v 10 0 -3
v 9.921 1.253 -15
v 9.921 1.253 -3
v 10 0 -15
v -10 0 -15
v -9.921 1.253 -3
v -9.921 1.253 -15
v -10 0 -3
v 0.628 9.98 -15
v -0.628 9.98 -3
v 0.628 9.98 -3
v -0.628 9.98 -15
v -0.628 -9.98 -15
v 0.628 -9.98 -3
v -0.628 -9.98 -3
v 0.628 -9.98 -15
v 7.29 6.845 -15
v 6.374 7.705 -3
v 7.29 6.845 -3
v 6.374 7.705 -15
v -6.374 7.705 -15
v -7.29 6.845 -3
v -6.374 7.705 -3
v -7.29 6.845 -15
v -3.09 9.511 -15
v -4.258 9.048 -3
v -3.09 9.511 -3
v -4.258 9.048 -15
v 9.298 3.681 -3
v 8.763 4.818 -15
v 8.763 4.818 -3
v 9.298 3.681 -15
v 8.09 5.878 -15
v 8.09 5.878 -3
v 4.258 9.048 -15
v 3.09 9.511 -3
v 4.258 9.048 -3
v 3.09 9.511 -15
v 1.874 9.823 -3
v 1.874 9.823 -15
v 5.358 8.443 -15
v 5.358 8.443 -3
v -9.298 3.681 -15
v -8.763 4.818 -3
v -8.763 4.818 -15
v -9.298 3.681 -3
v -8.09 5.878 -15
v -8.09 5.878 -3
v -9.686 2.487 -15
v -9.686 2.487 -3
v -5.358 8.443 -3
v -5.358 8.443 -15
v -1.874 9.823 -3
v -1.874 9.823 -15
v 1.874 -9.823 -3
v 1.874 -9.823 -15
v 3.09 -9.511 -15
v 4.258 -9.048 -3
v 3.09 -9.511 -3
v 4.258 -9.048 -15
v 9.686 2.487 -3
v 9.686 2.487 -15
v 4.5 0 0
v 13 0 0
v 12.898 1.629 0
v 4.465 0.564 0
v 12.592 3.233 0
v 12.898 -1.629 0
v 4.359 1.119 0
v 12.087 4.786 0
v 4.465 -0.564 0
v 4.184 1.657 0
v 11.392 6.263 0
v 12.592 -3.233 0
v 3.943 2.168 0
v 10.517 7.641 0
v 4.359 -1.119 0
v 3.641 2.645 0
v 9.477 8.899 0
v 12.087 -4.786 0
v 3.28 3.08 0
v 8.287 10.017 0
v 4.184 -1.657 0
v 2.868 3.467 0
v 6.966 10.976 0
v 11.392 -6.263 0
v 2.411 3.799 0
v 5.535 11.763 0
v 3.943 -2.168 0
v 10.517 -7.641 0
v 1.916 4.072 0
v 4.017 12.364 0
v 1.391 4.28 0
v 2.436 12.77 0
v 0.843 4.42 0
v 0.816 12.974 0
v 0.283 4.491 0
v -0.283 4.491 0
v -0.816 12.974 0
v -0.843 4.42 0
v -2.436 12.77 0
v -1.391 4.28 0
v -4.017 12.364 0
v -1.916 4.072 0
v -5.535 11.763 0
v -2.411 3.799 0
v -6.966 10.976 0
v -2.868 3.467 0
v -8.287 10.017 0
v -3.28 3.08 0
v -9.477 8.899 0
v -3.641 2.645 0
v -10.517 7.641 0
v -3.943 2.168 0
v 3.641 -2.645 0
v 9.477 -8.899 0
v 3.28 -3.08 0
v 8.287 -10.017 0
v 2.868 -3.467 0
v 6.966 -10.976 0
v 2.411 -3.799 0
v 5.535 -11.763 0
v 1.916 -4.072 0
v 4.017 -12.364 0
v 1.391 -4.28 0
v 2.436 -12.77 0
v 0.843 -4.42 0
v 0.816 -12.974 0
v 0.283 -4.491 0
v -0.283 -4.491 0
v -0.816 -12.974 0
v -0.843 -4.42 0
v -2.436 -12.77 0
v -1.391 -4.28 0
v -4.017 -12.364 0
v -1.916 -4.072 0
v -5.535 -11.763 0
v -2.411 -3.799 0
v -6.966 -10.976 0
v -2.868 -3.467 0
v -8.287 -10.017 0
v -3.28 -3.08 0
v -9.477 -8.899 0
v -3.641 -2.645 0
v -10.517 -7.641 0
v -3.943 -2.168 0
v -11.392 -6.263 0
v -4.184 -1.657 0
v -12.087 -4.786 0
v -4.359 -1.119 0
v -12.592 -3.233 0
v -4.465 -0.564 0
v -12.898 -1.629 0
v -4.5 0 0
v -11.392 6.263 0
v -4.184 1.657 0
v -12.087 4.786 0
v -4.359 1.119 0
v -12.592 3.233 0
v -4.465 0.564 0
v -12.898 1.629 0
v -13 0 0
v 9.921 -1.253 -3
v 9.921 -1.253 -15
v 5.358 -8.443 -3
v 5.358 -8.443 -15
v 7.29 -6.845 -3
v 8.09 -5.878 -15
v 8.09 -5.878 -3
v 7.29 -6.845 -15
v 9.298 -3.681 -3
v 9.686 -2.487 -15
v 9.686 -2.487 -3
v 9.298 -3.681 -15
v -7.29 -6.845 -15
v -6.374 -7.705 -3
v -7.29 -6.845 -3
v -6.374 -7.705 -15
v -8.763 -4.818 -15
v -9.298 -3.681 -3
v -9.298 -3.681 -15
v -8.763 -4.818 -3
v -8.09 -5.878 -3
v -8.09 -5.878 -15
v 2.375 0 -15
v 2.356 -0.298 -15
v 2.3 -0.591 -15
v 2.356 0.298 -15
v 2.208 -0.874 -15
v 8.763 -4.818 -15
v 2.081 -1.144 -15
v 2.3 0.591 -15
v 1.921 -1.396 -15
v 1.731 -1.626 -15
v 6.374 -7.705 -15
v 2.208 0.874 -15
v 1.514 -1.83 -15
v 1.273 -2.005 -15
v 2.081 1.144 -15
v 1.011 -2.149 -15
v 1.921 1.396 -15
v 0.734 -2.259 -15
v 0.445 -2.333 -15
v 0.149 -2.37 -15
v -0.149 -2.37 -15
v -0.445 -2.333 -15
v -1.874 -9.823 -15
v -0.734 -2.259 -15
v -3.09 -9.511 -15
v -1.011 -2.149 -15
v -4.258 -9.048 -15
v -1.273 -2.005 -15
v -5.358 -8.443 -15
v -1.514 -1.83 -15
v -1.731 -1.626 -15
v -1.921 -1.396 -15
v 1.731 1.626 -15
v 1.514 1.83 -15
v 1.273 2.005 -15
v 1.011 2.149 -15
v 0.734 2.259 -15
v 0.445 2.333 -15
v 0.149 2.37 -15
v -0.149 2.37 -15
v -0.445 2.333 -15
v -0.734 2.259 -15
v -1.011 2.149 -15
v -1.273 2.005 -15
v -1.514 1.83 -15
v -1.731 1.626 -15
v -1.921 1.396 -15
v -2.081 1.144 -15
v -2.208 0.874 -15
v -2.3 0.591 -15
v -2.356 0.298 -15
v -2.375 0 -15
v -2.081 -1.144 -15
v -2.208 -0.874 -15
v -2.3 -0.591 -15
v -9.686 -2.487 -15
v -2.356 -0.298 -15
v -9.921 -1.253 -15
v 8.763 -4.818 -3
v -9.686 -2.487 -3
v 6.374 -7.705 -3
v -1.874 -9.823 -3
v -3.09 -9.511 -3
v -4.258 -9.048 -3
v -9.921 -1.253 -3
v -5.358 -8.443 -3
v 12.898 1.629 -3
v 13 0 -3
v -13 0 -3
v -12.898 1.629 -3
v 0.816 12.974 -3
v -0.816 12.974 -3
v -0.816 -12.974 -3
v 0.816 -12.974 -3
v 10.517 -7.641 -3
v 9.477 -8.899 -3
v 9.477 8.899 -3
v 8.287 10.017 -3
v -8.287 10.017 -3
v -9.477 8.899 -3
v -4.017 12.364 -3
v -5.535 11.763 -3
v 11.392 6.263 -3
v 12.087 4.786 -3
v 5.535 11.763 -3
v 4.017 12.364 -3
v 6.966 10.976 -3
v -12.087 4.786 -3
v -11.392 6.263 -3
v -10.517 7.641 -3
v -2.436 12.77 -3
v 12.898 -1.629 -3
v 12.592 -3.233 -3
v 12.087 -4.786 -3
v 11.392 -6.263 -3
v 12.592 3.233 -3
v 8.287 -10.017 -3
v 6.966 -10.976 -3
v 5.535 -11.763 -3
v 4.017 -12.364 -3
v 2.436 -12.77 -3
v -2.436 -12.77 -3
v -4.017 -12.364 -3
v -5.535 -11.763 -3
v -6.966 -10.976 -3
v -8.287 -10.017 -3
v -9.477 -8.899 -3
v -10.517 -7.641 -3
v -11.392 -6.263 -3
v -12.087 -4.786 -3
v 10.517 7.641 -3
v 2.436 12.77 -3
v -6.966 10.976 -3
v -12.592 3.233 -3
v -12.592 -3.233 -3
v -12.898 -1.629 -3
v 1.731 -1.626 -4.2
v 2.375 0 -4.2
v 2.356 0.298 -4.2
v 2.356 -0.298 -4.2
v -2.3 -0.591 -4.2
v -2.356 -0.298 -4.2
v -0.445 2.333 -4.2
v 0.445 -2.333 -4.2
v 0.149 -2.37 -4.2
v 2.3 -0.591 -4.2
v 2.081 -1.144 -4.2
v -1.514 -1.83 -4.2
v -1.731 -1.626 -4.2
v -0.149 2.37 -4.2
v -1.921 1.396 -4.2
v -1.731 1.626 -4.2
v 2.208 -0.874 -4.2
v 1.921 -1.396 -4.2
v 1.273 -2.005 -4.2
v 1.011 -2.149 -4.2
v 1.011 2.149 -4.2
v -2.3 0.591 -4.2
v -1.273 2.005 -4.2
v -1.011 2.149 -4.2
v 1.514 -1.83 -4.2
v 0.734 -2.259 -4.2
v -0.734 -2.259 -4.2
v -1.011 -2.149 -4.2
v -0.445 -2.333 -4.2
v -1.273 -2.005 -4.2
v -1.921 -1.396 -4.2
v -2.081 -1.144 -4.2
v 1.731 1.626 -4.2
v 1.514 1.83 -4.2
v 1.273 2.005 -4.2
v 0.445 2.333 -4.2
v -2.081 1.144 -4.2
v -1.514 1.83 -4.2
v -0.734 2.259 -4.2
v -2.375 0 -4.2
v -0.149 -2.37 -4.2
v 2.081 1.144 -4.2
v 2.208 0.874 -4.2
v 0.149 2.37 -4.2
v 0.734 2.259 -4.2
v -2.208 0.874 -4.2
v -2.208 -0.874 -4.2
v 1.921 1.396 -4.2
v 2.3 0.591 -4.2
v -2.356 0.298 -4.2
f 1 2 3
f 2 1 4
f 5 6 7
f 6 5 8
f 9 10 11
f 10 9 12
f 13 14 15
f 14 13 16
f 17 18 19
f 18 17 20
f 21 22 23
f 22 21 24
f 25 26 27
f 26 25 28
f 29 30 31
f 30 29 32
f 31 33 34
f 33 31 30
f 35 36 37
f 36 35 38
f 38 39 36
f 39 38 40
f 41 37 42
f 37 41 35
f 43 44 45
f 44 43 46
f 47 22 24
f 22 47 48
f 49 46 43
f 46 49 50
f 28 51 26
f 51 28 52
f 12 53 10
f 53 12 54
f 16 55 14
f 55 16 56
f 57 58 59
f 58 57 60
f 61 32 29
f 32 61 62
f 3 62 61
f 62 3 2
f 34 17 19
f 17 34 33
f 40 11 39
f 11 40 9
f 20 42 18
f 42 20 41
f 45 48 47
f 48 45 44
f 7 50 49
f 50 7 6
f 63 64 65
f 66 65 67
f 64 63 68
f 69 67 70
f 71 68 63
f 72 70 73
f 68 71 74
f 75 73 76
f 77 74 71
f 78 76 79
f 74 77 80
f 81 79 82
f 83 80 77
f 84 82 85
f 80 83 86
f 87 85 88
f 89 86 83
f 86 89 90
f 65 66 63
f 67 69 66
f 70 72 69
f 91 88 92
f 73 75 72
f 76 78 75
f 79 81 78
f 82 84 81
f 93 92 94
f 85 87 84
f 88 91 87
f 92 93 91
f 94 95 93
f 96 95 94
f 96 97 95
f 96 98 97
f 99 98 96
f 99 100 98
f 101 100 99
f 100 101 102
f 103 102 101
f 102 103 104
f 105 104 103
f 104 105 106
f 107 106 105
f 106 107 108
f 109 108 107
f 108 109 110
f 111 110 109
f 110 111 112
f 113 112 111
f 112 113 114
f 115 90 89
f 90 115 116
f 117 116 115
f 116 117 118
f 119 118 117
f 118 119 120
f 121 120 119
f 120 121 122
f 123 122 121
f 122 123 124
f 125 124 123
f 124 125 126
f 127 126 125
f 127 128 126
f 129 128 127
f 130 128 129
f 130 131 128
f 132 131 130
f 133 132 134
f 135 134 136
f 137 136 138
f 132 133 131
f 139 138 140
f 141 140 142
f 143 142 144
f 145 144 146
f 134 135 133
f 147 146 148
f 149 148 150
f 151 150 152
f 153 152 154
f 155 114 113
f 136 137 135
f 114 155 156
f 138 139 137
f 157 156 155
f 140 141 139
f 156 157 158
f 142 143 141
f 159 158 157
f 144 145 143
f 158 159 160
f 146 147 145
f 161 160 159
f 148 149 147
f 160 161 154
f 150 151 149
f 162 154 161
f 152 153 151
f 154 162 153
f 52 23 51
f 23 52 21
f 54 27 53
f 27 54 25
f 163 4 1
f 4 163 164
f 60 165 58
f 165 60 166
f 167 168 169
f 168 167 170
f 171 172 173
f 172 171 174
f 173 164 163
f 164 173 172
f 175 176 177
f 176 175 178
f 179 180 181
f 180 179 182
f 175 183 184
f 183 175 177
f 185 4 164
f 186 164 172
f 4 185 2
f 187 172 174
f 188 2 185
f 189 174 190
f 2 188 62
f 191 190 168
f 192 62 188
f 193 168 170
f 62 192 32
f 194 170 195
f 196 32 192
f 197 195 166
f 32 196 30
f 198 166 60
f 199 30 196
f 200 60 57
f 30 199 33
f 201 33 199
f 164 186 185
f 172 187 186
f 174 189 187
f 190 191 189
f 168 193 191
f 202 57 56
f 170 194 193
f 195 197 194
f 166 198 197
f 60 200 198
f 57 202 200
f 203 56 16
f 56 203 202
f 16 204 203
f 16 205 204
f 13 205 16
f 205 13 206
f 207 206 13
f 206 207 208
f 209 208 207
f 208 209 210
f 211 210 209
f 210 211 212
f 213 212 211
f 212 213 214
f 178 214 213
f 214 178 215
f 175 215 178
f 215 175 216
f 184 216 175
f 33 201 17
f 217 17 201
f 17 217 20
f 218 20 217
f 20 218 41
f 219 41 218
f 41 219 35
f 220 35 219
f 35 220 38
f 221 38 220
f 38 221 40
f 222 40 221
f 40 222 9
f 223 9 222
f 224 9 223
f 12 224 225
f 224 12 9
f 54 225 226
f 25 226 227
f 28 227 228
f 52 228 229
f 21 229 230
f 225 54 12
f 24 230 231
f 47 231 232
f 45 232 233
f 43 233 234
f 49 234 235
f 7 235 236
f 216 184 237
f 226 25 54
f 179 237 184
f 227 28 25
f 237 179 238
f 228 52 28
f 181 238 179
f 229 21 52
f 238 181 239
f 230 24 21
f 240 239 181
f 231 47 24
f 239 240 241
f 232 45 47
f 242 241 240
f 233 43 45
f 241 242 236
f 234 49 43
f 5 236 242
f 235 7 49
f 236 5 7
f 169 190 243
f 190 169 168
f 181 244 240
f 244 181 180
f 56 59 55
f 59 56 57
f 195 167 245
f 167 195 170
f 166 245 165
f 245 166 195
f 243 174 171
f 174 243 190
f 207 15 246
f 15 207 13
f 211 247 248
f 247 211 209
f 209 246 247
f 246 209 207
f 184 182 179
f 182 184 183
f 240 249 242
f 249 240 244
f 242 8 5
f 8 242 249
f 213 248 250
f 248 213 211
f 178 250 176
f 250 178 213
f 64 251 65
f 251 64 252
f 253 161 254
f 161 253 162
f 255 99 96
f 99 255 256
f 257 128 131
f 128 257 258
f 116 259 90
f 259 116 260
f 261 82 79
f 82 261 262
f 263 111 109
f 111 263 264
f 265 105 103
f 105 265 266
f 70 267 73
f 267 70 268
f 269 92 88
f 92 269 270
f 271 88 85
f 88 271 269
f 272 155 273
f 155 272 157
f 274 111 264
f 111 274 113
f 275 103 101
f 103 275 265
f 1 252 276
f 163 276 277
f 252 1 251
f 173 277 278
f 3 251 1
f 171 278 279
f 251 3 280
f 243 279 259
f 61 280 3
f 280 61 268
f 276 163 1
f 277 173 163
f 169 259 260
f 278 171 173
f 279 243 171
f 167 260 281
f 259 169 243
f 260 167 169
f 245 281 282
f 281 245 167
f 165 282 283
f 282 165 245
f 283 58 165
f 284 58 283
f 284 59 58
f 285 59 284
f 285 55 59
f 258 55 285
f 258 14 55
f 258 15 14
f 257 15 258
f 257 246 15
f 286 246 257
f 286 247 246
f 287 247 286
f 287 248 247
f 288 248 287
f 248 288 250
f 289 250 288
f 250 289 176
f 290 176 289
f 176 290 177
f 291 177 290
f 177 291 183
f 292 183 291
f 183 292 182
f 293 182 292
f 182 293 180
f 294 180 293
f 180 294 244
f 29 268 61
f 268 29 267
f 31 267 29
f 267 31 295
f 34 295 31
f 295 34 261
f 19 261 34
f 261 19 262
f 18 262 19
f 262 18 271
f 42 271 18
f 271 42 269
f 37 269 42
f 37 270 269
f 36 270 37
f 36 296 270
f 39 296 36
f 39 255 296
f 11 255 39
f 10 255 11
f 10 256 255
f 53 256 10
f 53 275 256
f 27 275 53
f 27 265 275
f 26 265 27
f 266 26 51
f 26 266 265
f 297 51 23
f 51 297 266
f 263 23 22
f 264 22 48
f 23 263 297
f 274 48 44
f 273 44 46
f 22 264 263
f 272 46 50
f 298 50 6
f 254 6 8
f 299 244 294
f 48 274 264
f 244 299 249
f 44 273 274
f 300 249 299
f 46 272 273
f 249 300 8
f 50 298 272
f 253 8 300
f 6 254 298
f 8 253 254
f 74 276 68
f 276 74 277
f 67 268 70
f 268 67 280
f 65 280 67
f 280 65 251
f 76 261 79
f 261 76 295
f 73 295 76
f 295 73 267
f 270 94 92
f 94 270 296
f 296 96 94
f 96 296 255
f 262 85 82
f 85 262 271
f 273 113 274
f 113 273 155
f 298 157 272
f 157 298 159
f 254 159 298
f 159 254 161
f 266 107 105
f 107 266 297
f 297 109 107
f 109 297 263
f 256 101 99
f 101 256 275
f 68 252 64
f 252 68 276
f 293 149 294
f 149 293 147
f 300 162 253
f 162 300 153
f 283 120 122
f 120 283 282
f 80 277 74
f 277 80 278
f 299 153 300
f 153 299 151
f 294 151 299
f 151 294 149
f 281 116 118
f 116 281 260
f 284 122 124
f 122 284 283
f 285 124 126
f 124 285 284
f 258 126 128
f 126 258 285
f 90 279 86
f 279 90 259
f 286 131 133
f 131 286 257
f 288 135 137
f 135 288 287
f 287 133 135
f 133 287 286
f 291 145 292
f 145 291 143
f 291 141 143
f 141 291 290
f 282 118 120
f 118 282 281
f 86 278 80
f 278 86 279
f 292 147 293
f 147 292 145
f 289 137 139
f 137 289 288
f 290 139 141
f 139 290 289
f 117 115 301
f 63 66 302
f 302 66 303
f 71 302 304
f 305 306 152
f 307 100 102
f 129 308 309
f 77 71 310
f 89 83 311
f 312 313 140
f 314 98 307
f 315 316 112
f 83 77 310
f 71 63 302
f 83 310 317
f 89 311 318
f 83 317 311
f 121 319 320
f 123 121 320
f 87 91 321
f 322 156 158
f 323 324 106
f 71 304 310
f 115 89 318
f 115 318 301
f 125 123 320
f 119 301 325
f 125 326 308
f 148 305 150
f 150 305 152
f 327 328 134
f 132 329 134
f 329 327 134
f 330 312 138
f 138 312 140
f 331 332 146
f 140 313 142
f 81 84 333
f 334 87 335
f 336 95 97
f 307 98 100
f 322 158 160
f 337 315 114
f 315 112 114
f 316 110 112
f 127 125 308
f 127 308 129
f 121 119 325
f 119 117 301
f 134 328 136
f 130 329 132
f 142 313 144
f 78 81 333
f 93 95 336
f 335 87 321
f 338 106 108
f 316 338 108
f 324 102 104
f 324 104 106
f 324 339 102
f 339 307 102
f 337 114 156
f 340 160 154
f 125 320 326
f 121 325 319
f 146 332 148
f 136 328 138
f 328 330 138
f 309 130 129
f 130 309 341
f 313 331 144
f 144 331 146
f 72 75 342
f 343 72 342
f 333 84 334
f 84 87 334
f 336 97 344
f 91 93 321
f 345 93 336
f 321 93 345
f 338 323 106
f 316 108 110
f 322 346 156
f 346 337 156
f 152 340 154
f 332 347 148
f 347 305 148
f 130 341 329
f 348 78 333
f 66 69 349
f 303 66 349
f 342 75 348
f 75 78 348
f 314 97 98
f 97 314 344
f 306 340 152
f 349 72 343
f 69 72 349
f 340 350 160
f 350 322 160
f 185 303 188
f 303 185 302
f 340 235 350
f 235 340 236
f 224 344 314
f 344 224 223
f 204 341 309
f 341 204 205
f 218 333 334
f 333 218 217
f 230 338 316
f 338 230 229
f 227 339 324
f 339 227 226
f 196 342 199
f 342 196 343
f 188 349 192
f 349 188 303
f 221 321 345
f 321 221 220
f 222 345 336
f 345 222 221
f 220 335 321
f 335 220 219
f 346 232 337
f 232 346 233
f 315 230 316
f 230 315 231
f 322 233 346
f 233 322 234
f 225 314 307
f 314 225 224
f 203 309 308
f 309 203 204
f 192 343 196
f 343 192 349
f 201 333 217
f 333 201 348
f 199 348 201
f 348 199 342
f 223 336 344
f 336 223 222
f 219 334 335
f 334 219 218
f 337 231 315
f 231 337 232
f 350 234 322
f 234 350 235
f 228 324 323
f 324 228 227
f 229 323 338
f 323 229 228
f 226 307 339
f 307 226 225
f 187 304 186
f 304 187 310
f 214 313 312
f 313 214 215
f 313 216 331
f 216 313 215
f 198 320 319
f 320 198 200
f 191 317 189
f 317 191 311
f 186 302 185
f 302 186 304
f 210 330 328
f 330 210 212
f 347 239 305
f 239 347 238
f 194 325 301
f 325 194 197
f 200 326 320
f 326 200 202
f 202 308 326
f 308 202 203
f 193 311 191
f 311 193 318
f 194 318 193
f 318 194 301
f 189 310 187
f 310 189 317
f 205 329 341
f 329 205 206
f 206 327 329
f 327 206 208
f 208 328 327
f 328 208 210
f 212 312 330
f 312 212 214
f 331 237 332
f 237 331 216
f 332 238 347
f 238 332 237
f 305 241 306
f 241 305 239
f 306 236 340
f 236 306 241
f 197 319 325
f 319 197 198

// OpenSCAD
$fn = 50;


difference() {
	union() {
		translate(v = [0, 0, -15.0000000000]) {
			cylinder(h = 15, r = 10.0000000000);
		}
		translate(v = [0, 0, -3.0000000000]) {
			cylinder(h = 3, r = 13.0000000000);
		}
	}
	union() {
		translate(v = [0, 0, 0]) {
			rotate(a = [0, 0, 0]) {
				difference() {
					union() {
						#translate(v = [0, 0, -15.0000000000]) {
							cylinder(h = 15, r = 2.2500000000);
						}
						#translate(v = [0, 0, -4.2000000000]) {
							cylinder(h = 4.2000000000, r1 = 2.3750000000, r2 = 4.5000000000);
						}
						#translate(v = [0, 0, -15.0000000000]) {
							cylinder(h = 15, r = 2.3750000000);
						}
						#translate(v = [0, 0, -15.0000000000]) {
							cylinder(h = 15, r = 2.2500000000);
						}
					}
					union();
				}
			}
		}
	}
}
